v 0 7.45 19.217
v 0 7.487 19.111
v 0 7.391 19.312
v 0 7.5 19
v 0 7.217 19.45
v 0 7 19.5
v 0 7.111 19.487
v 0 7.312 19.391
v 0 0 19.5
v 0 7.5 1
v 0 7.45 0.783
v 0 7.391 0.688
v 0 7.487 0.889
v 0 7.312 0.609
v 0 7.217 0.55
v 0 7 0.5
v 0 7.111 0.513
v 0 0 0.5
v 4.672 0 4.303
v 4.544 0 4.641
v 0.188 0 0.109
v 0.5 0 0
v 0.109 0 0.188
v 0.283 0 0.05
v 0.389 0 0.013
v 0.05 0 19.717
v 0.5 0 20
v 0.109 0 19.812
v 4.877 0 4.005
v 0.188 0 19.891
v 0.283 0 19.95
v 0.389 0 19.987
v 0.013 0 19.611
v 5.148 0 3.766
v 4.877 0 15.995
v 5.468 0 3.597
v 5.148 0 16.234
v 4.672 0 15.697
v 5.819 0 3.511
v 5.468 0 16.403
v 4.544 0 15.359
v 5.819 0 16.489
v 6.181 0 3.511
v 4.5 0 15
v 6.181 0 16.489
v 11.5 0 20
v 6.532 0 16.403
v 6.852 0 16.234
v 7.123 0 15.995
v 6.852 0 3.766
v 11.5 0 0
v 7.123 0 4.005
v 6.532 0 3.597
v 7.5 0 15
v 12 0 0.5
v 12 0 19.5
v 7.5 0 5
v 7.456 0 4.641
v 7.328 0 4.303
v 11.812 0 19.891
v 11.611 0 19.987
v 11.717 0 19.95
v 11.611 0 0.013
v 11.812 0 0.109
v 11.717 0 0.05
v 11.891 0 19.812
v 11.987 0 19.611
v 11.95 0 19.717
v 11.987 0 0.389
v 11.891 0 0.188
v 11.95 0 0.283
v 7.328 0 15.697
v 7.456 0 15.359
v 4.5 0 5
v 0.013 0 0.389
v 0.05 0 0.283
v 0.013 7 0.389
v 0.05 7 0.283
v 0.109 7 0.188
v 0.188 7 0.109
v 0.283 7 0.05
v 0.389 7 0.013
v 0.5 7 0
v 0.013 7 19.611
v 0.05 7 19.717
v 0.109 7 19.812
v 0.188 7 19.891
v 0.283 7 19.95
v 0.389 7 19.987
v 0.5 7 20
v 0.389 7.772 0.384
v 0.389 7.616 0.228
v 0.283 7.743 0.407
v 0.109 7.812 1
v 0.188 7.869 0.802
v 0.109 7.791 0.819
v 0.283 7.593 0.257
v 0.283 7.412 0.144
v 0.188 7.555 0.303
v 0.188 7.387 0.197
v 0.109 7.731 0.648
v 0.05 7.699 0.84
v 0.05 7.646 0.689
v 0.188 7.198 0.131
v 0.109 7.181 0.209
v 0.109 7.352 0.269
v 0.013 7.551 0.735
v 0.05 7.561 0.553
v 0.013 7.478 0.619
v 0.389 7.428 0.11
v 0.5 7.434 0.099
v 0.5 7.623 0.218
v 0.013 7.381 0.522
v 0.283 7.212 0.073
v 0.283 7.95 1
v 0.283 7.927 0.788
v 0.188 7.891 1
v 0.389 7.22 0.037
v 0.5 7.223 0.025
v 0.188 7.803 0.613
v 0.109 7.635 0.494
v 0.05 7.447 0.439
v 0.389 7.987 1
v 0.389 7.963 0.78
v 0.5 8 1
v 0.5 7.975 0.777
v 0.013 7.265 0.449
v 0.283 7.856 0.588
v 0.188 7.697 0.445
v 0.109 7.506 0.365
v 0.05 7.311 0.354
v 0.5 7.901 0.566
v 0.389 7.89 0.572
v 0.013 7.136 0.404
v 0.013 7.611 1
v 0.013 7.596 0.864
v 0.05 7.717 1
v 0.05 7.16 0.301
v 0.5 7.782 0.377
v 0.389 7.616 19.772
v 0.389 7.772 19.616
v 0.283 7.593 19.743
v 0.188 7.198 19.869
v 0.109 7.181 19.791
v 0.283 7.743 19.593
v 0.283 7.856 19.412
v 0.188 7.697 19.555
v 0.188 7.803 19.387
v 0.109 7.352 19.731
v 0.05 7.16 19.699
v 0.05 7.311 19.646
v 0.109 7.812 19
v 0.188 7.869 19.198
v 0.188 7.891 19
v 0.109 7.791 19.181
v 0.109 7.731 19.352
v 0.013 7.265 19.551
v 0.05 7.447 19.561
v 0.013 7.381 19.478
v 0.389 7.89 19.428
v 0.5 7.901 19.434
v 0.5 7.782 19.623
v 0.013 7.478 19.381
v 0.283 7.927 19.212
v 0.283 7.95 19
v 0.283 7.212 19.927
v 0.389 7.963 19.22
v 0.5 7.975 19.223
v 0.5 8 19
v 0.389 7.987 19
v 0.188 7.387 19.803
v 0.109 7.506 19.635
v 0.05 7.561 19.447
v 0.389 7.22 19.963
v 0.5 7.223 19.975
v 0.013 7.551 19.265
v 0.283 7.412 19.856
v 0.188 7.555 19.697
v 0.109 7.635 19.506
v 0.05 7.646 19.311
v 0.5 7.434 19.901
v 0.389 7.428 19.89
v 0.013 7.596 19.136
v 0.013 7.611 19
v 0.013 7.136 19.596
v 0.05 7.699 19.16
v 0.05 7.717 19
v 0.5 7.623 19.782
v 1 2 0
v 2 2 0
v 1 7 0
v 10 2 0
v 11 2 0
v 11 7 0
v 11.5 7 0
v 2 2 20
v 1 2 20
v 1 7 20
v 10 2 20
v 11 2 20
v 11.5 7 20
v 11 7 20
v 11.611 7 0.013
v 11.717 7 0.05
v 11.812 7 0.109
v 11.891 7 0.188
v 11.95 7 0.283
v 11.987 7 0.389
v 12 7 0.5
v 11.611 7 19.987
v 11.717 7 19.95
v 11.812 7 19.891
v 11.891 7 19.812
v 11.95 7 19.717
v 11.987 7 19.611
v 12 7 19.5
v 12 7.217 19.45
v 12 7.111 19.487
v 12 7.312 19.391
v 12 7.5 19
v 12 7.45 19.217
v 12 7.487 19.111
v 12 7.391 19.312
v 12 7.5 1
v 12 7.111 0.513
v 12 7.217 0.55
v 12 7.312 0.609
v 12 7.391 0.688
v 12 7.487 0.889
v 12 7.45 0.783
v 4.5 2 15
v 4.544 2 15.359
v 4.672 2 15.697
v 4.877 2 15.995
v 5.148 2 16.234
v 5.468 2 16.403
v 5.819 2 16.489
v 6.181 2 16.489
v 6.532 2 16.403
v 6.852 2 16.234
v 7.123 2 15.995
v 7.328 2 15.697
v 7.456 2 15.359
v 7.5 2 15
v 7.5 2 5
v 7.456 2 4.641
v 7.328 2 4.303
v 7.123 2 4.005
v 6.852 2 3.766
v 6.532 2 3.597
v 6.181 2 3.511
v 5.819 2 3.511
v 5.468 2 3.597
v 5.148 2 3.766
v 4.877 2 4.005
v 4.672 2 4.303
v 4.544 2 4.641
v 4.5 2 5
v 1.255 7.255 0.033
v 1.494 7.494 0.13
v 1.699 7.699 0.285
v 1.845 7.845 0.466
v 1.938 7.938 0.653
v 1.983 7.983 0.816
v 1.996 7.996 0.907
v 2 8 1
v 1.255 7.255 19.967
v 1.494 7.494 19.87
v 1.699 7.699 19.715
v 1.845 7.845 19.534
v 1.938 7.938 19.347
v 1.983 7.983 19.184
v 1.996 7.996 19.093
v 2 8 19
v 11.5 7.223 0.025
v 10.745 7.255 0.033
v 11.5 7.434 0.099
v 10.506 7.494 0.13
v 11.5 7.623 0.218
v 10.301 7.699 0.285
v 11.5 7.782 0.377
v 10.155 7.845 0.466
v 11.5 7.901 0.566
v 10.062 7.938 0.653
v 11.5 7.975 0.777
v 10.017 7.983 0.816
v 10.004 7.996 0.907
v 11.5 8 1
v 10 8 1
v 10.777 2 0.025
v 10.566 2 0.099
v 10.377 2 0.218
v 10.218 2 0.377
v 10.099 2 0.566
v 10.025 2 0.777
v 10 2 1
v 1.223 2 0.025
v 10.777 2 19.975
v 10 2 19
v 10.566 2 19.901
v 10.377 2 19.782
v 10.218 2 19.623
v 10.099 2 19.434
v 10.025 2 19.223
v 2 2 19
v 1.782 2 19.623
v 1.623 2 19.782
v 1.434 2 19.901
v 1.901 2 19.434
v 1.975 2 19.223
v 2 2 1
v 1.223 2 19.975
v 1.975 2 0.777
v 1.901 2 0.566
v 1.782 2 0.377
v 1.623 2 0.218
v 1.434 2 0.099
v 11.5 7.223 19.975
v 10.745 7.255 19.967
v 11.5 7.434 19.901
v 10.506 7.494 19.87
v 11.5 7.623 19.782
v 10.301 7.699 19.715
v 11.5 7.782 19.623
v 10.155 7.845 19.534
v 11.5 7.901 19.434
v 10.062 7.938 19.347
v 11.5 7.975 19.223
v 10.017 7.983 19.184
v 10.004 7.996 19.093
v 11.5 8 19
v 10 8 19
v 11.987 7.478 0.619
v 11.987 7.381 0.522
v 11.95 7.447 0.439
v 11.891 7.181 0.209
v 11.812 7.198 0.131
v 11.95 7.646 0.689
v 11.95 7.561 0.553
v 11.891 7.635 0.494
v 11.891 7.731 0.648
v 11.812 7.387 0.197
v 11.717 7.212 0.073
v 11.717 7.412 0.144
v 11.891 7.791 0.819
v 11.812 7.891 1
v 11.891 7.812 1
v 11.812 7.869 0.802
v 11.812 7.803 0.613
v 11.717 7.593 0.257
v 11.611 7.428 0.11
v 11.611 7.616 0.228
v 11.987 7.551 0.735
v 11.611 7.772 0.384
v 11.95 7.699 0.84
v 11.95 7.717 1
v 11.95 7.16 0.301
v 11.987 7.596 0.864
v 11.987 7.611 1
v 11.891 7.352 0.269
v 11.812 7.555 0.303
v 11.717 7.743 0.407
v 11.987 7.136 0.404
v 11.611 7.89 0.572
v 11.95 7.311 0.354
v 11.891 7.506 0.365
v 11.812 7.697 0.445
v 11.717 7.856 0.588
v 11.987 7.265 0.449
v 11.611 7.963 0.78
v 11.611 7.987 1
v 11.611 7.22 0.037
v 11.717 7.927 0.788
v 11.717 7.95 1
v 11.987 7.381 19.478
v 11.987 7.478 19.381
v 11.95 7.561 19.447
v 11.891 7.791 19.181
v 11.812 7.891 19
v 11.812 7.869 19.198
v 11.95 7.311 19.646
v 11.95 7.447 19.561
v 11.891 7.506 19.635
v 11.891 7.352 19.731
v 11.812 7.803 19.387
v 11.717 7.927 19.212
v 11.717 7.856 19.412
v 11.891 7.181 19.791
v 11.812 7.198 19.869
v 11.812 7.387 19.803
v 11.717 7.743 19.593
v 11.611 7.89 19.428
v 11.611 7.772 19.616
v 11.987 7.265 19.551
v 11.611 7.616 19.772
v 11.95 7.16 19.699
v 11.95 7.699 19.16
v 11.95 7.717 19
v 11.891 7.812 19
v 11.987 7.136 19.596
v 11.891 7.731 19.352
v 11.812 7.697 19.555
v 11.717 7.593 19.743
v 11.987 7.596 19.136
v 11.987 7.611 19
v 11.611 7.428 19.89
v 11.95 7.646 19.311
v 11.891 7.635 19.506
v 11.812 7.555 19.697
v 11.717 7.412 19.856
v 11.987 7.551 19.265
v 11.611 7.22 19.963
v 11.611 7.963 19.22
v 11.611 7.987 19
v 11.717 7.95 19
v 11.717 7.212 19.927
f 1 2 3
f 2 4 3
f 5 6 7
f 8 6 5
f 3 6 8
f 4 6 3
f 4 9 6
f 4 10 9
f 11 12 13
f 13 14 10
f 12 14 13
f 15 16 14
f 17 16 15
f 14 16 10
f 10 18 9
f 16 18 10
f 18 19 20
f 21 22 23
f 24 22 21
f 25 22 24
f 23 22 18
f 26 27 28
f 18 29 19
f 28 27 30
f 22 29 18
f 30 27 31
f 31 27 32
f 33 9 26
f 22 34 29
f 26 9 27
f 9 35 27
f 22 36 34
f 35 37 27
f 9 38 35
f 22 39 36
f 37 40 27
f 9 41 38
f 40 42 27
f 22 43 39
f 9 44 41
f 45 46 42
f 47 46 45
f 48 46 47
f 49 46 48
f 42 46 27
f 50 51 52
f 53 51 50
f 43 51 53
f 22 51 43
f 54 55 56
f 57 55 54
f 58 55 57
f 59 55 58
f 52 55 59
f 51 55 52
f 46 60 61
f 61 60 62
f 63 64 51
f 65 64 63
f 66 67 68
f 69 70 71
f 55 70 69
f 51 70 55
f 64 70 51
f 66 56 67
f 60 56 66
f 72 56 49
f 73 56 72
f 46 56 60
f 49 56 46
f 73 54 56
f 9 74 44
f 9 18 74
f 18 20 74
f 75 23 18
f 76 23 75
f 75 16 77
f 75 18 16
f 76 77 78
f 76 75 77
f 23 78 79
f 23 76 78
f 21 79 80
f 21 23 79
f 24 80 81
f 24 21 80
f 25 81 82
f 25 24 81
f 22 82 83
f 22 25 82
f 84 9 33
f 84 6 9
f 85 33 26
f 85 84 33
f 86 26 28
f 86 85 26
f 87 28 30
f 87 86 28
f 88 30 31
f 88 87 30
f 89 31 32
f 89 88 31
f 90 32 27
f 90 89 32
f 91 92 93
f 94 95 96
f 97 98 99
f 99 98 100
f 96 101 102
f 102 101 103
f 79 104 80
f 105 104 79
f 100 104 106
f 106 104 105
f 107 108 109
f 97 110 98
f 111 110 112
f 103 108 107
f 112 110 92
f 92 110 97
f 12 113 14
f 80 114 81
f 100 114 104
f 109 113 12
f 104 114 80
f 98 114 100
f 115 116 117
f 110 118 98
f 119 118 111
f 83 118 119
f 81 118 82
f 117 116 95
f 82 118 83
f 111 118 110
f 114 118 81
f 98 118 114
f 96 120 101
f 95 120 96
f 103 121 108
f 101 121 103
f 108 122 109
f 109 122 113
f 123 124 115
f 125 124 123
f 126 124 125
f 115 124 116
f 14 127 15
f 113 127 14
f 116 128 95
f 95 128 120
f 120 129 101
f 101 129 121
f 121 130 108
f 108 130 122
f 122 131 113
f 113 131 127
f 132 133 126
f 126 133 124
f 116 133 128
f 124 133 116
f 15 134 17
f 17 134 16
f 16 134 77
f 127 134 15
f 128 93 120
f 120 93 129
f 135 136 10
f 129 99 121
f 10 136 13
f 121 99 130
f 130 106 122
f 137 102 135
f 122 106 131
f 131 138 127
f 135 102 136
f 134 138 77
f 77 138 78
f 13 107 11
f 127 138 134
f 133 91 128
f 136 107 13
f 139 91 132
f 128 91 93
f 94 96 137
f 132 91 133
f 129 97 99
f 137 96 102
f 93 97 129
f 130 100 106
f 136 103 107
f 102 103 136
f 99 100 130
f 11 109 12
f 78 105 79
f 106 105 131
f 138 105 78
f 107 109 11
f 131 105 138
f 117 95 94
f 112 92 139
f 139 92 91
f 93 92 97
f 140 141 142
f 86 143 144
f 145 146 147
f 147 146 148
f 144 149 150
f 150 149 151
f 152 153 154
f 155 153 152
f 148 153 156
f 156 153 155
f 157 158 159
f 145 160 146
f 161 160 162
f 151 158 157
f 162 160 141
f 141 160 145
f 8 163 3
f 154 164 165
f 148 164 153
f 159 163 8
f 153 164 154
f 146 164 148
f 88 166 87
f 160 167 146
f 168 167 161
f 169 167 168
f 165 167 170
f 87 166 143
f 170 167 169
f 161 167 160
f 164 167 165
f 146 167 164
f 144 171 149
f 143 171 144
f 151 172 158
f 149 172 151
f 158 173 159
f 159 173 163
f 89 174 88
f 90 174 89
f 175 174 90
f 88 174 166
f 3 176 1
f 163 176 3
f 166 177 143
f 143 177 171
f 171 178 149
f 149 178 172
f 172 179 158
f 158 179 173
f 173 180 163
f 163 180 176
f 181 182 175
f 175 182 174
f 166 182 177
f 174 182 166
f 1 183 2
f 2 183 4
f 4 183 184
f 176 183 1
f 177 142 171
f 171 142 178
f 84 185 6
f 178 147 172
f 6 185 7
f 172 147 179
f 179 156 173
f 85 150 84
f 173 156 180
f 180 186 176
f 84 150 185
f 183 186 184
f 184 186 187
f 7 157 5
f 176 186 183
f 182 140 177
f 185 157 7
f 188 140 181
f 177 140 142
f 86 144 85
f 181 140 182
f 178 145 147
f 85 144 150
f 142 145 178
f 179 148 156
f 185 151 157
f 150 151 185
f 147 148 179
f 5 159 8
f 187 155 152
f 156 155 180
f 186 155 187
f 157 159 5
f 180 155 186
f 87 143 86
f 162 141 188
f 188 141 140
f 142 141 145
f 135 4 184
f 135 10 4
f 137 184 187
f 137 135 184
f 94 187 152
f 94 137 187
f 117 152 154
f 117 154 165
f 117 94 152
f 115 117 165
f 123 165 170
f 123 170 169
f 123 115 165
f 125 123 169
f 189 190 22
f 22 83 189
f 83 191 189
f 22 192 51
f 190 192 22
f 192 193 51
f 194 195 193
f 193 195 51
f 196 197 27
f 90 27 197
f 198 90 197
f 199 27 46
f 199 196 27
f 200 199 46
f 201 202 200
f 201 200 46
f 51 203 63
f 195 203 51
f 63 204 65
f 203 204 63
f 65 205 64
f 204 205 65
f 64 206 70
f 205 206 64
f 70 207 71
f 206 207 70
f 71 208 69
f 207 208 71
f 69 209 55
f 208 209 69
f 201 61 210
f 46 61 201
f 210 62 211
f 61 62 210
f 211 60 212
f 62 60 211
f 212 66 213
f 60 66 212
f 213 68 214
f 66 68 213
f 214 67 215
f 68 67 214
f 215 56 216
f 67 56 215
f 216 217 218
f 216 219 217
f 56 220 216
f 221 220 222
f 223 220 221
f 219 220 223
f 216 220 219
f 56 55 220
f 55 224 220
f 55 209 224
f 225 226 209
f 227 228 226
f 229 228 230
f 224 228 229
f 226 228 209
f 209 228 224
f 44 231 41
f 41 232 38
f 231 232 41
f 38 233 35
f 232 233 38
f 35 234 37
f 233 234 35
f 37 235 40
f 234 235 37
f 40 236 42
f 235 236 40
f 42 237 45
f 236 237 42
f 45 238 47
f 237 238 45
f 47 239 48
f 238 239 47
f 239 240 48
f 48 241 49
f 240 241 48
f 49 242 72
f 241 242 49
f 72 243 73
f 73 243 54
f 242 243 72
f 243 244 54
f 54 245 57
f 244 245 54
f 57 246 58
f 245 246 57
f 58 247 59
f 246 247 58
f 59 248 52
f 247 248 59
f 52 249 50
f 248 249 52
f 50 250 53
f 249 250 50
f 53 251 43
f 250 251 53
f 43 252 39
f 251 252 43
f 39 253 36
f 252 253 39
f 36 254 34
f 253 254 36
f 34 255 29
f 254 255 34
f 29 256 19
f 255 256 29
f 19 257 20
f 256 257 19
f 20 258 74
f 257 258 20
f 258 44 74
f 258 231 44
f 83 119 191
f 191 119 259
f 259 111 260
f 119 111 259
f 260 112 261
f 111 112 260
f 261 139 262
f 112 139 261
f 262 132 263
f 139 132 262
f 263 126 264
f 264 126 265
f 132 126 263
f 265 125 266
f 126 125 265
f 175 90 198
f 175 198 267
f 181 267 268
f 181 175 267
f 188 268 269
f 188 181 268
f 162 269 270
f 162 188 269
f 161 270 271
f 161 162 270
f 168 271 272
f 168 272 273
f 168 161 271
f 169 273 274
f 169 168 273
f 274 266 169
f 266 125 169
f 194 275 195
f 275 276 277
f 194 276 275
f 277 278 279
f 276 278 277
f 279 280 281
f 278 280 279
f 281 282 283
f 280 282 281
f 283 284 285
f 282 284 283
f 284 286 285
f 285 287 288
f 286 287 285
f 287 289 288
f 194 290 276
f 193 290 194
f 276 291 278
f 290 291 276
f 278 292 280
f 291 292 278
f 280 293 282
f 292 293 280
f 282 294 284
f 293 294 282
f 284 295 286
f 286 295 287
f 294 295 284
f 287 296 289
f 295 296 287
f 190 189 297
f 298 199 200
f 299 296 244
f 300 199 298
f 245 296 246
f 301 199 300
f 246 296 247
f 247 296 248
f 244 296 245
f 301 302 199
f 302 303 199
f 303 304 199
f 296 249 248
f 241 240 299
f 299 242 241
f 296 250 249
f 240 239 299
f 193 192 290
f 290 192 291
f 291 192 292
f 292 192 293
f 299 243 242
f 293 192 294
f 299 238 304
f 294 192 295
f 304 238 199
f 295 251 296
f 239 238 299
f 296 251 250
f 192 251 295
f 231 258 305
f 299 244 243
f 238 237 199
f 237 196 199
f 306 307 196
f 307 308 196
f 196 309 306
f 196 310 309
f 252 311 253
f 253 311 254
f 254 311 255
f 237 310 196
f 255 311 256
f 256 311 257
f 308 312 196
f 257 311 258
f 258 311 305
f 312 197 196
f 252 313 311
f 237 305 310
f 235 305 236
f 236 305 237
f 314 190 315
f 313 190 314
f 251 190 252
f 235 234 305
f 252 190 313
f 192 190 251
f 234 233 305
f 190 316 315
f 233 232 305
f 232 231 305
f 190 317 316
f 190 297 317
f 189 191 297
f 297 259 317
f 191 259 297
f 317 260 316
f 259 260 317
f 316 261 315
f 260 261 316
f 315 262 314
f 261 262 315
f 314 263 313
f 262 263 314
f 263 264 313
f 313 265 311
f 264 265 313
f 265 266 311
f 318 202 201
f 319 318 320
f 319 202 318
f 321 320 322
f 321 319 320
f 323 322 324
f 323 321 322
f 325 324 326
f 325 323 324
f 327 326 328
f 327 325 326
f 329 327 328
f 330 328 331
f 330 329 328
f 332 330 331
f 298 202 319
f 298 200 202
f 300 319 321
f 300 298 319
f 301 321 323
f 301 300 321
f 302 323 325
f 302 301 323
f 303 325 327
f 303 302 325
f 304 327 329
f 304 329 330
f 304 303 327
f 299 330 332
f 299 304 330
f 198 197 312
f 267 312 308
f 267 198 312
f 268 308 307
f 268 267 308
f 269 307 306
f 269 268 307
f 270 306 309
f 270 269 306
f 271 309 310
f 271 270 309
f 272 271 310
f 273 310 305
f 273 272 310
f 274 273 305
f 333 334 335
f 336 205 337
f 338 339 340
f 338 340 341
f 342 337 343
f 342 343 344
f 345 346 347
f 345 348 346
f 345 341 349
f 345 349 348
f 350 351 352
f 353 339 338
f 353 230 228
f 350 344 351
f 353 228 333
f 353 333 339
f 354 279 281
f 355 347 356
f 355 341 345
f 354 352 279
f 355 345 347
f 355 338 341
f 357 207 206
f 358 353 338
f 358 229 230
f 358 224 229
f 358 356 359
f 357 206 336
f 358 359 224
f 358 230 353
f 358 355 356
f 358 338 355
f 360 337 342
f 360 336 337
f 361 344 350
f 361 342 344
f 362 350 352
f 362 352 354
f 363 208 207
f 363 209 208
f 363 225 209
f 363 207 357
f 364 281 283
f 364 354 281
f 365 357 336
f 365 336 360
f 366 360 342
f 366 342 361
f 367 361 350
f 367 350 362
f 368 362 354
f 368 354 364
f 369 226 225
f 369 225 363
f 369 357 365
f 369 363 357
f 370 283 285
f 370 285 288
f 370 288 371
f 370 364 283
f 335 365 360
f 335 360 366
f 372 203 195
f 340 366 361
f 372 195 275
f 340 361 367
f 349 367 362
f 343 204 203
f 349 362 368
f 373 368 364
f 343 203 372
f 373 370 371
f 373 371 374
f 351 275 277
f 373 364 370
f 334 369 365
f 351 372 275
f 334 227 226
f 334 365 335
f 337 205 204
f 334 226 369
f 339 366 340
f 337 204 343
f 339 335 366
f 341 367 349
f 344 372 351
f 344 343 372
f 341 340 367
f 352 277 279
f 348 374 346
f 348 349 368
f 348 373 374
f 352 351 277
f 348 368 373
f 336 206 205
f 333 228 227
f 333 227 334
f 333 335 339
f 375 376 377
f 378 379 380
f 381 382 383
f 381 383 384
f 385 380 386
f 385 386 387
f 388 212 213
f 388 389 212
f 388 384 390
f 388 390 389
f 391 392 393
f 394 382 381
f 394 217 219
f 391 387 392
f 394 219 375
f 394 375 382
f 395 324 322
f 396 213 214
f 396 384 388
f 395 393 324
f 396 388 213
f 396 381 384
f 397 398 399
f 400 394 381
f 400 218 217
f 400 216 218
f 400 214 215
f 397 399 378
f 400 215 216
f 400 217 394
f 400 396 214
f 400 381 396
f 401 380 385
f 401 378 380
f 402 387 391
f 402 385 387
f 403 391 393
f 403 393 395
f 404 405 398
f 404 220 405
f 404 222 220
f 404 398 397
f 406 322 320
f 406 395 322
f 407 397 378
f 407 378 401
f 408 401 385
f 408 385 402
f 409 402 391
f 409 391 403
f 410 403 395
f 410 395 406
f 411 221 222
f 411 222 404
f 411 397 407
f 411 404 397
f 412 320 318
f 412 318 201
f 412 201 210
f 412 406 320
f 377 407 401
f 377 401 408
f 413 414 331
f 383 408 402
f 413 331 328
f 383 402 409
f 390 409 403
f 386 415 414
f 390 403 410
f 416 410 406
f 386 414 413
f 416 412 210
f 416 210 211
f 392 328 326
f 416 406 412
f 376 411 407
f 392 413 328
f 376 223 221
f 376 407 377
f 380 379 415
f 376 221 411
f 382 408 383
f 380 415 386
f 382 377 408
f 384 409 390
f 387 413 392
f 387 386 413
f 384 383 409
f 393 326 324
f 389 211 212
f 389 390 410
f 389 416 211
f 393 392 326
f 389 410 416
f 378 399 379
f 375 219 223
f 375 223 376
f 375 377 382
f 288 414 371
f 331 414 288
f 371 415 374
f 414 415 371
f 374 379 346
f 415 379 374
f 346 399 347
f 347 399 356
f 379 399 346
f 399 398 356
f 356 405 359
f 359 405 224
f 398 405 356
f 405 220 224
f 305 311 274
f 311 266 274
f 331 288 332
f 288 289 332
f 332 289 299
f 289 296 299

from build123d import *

# Parameters (mm, degrees)
EXTRUDE_DEPTH = 20
POCKET_DEPTH  = 5
FILLET_R      = 1
FILLET001_R   = 0.5


with BuildPart() as part:
    # Sketch → Extrude (new body)
    with BuildSketch(Plane.XY):
        Polygon((0, 0), (12, 0), (12, 8), (10, 8), (10, 2), (2, 2), (2, 8), (0, 8), align=None)
    extrude(amount=EXTRUDE_DEPTH)

    # Sketch001 (on Face5 of BaseFeature) → Pocket (cut)
    with BuildSketch(Plane(origin=(0, 2, 0), x_dir=(-1, 0, 0), z_dir=(0, 1, 0))):
        with BuildLine():
            ThreePointArc((-4.5, 15), (-6, 16.5), (-7.5, 15))
            Line((-7.5, 15), (-7.5, 5))
            ThreePointArc((-7.5, 5), (-6, 3.5), (-4.5, 5))
            Line((-4.5, 15), (-4.5, 5))
        make_face()
    extrude(amount=-POCKET_DEPTH, mode=Mode.SUBTRACT)

    # Fillet
    fillet_edges = [part.edges().sort_by_distance(p)[0] for p in [
        (11, 8, 0),
        (10, 5, 0),
        (2, 5, 0),
        (1, 8, 0),
        (11, 8, 20),
        (10, 5, 20),
        (2, 5, 20),
        (1, 8, 20),
    ]]
    fillet(fillet_edges, radius=FILLET_R)

    # Fillet001
    fillet001_edges = [part.edges().sort_by_distance(p)[0] for p in [
        (0, 3.5, 0),
        (12, 3.5, 0),
    ]]
    fillet(fillet001_edges, radius=FILLET001_R)


solid = part.part
